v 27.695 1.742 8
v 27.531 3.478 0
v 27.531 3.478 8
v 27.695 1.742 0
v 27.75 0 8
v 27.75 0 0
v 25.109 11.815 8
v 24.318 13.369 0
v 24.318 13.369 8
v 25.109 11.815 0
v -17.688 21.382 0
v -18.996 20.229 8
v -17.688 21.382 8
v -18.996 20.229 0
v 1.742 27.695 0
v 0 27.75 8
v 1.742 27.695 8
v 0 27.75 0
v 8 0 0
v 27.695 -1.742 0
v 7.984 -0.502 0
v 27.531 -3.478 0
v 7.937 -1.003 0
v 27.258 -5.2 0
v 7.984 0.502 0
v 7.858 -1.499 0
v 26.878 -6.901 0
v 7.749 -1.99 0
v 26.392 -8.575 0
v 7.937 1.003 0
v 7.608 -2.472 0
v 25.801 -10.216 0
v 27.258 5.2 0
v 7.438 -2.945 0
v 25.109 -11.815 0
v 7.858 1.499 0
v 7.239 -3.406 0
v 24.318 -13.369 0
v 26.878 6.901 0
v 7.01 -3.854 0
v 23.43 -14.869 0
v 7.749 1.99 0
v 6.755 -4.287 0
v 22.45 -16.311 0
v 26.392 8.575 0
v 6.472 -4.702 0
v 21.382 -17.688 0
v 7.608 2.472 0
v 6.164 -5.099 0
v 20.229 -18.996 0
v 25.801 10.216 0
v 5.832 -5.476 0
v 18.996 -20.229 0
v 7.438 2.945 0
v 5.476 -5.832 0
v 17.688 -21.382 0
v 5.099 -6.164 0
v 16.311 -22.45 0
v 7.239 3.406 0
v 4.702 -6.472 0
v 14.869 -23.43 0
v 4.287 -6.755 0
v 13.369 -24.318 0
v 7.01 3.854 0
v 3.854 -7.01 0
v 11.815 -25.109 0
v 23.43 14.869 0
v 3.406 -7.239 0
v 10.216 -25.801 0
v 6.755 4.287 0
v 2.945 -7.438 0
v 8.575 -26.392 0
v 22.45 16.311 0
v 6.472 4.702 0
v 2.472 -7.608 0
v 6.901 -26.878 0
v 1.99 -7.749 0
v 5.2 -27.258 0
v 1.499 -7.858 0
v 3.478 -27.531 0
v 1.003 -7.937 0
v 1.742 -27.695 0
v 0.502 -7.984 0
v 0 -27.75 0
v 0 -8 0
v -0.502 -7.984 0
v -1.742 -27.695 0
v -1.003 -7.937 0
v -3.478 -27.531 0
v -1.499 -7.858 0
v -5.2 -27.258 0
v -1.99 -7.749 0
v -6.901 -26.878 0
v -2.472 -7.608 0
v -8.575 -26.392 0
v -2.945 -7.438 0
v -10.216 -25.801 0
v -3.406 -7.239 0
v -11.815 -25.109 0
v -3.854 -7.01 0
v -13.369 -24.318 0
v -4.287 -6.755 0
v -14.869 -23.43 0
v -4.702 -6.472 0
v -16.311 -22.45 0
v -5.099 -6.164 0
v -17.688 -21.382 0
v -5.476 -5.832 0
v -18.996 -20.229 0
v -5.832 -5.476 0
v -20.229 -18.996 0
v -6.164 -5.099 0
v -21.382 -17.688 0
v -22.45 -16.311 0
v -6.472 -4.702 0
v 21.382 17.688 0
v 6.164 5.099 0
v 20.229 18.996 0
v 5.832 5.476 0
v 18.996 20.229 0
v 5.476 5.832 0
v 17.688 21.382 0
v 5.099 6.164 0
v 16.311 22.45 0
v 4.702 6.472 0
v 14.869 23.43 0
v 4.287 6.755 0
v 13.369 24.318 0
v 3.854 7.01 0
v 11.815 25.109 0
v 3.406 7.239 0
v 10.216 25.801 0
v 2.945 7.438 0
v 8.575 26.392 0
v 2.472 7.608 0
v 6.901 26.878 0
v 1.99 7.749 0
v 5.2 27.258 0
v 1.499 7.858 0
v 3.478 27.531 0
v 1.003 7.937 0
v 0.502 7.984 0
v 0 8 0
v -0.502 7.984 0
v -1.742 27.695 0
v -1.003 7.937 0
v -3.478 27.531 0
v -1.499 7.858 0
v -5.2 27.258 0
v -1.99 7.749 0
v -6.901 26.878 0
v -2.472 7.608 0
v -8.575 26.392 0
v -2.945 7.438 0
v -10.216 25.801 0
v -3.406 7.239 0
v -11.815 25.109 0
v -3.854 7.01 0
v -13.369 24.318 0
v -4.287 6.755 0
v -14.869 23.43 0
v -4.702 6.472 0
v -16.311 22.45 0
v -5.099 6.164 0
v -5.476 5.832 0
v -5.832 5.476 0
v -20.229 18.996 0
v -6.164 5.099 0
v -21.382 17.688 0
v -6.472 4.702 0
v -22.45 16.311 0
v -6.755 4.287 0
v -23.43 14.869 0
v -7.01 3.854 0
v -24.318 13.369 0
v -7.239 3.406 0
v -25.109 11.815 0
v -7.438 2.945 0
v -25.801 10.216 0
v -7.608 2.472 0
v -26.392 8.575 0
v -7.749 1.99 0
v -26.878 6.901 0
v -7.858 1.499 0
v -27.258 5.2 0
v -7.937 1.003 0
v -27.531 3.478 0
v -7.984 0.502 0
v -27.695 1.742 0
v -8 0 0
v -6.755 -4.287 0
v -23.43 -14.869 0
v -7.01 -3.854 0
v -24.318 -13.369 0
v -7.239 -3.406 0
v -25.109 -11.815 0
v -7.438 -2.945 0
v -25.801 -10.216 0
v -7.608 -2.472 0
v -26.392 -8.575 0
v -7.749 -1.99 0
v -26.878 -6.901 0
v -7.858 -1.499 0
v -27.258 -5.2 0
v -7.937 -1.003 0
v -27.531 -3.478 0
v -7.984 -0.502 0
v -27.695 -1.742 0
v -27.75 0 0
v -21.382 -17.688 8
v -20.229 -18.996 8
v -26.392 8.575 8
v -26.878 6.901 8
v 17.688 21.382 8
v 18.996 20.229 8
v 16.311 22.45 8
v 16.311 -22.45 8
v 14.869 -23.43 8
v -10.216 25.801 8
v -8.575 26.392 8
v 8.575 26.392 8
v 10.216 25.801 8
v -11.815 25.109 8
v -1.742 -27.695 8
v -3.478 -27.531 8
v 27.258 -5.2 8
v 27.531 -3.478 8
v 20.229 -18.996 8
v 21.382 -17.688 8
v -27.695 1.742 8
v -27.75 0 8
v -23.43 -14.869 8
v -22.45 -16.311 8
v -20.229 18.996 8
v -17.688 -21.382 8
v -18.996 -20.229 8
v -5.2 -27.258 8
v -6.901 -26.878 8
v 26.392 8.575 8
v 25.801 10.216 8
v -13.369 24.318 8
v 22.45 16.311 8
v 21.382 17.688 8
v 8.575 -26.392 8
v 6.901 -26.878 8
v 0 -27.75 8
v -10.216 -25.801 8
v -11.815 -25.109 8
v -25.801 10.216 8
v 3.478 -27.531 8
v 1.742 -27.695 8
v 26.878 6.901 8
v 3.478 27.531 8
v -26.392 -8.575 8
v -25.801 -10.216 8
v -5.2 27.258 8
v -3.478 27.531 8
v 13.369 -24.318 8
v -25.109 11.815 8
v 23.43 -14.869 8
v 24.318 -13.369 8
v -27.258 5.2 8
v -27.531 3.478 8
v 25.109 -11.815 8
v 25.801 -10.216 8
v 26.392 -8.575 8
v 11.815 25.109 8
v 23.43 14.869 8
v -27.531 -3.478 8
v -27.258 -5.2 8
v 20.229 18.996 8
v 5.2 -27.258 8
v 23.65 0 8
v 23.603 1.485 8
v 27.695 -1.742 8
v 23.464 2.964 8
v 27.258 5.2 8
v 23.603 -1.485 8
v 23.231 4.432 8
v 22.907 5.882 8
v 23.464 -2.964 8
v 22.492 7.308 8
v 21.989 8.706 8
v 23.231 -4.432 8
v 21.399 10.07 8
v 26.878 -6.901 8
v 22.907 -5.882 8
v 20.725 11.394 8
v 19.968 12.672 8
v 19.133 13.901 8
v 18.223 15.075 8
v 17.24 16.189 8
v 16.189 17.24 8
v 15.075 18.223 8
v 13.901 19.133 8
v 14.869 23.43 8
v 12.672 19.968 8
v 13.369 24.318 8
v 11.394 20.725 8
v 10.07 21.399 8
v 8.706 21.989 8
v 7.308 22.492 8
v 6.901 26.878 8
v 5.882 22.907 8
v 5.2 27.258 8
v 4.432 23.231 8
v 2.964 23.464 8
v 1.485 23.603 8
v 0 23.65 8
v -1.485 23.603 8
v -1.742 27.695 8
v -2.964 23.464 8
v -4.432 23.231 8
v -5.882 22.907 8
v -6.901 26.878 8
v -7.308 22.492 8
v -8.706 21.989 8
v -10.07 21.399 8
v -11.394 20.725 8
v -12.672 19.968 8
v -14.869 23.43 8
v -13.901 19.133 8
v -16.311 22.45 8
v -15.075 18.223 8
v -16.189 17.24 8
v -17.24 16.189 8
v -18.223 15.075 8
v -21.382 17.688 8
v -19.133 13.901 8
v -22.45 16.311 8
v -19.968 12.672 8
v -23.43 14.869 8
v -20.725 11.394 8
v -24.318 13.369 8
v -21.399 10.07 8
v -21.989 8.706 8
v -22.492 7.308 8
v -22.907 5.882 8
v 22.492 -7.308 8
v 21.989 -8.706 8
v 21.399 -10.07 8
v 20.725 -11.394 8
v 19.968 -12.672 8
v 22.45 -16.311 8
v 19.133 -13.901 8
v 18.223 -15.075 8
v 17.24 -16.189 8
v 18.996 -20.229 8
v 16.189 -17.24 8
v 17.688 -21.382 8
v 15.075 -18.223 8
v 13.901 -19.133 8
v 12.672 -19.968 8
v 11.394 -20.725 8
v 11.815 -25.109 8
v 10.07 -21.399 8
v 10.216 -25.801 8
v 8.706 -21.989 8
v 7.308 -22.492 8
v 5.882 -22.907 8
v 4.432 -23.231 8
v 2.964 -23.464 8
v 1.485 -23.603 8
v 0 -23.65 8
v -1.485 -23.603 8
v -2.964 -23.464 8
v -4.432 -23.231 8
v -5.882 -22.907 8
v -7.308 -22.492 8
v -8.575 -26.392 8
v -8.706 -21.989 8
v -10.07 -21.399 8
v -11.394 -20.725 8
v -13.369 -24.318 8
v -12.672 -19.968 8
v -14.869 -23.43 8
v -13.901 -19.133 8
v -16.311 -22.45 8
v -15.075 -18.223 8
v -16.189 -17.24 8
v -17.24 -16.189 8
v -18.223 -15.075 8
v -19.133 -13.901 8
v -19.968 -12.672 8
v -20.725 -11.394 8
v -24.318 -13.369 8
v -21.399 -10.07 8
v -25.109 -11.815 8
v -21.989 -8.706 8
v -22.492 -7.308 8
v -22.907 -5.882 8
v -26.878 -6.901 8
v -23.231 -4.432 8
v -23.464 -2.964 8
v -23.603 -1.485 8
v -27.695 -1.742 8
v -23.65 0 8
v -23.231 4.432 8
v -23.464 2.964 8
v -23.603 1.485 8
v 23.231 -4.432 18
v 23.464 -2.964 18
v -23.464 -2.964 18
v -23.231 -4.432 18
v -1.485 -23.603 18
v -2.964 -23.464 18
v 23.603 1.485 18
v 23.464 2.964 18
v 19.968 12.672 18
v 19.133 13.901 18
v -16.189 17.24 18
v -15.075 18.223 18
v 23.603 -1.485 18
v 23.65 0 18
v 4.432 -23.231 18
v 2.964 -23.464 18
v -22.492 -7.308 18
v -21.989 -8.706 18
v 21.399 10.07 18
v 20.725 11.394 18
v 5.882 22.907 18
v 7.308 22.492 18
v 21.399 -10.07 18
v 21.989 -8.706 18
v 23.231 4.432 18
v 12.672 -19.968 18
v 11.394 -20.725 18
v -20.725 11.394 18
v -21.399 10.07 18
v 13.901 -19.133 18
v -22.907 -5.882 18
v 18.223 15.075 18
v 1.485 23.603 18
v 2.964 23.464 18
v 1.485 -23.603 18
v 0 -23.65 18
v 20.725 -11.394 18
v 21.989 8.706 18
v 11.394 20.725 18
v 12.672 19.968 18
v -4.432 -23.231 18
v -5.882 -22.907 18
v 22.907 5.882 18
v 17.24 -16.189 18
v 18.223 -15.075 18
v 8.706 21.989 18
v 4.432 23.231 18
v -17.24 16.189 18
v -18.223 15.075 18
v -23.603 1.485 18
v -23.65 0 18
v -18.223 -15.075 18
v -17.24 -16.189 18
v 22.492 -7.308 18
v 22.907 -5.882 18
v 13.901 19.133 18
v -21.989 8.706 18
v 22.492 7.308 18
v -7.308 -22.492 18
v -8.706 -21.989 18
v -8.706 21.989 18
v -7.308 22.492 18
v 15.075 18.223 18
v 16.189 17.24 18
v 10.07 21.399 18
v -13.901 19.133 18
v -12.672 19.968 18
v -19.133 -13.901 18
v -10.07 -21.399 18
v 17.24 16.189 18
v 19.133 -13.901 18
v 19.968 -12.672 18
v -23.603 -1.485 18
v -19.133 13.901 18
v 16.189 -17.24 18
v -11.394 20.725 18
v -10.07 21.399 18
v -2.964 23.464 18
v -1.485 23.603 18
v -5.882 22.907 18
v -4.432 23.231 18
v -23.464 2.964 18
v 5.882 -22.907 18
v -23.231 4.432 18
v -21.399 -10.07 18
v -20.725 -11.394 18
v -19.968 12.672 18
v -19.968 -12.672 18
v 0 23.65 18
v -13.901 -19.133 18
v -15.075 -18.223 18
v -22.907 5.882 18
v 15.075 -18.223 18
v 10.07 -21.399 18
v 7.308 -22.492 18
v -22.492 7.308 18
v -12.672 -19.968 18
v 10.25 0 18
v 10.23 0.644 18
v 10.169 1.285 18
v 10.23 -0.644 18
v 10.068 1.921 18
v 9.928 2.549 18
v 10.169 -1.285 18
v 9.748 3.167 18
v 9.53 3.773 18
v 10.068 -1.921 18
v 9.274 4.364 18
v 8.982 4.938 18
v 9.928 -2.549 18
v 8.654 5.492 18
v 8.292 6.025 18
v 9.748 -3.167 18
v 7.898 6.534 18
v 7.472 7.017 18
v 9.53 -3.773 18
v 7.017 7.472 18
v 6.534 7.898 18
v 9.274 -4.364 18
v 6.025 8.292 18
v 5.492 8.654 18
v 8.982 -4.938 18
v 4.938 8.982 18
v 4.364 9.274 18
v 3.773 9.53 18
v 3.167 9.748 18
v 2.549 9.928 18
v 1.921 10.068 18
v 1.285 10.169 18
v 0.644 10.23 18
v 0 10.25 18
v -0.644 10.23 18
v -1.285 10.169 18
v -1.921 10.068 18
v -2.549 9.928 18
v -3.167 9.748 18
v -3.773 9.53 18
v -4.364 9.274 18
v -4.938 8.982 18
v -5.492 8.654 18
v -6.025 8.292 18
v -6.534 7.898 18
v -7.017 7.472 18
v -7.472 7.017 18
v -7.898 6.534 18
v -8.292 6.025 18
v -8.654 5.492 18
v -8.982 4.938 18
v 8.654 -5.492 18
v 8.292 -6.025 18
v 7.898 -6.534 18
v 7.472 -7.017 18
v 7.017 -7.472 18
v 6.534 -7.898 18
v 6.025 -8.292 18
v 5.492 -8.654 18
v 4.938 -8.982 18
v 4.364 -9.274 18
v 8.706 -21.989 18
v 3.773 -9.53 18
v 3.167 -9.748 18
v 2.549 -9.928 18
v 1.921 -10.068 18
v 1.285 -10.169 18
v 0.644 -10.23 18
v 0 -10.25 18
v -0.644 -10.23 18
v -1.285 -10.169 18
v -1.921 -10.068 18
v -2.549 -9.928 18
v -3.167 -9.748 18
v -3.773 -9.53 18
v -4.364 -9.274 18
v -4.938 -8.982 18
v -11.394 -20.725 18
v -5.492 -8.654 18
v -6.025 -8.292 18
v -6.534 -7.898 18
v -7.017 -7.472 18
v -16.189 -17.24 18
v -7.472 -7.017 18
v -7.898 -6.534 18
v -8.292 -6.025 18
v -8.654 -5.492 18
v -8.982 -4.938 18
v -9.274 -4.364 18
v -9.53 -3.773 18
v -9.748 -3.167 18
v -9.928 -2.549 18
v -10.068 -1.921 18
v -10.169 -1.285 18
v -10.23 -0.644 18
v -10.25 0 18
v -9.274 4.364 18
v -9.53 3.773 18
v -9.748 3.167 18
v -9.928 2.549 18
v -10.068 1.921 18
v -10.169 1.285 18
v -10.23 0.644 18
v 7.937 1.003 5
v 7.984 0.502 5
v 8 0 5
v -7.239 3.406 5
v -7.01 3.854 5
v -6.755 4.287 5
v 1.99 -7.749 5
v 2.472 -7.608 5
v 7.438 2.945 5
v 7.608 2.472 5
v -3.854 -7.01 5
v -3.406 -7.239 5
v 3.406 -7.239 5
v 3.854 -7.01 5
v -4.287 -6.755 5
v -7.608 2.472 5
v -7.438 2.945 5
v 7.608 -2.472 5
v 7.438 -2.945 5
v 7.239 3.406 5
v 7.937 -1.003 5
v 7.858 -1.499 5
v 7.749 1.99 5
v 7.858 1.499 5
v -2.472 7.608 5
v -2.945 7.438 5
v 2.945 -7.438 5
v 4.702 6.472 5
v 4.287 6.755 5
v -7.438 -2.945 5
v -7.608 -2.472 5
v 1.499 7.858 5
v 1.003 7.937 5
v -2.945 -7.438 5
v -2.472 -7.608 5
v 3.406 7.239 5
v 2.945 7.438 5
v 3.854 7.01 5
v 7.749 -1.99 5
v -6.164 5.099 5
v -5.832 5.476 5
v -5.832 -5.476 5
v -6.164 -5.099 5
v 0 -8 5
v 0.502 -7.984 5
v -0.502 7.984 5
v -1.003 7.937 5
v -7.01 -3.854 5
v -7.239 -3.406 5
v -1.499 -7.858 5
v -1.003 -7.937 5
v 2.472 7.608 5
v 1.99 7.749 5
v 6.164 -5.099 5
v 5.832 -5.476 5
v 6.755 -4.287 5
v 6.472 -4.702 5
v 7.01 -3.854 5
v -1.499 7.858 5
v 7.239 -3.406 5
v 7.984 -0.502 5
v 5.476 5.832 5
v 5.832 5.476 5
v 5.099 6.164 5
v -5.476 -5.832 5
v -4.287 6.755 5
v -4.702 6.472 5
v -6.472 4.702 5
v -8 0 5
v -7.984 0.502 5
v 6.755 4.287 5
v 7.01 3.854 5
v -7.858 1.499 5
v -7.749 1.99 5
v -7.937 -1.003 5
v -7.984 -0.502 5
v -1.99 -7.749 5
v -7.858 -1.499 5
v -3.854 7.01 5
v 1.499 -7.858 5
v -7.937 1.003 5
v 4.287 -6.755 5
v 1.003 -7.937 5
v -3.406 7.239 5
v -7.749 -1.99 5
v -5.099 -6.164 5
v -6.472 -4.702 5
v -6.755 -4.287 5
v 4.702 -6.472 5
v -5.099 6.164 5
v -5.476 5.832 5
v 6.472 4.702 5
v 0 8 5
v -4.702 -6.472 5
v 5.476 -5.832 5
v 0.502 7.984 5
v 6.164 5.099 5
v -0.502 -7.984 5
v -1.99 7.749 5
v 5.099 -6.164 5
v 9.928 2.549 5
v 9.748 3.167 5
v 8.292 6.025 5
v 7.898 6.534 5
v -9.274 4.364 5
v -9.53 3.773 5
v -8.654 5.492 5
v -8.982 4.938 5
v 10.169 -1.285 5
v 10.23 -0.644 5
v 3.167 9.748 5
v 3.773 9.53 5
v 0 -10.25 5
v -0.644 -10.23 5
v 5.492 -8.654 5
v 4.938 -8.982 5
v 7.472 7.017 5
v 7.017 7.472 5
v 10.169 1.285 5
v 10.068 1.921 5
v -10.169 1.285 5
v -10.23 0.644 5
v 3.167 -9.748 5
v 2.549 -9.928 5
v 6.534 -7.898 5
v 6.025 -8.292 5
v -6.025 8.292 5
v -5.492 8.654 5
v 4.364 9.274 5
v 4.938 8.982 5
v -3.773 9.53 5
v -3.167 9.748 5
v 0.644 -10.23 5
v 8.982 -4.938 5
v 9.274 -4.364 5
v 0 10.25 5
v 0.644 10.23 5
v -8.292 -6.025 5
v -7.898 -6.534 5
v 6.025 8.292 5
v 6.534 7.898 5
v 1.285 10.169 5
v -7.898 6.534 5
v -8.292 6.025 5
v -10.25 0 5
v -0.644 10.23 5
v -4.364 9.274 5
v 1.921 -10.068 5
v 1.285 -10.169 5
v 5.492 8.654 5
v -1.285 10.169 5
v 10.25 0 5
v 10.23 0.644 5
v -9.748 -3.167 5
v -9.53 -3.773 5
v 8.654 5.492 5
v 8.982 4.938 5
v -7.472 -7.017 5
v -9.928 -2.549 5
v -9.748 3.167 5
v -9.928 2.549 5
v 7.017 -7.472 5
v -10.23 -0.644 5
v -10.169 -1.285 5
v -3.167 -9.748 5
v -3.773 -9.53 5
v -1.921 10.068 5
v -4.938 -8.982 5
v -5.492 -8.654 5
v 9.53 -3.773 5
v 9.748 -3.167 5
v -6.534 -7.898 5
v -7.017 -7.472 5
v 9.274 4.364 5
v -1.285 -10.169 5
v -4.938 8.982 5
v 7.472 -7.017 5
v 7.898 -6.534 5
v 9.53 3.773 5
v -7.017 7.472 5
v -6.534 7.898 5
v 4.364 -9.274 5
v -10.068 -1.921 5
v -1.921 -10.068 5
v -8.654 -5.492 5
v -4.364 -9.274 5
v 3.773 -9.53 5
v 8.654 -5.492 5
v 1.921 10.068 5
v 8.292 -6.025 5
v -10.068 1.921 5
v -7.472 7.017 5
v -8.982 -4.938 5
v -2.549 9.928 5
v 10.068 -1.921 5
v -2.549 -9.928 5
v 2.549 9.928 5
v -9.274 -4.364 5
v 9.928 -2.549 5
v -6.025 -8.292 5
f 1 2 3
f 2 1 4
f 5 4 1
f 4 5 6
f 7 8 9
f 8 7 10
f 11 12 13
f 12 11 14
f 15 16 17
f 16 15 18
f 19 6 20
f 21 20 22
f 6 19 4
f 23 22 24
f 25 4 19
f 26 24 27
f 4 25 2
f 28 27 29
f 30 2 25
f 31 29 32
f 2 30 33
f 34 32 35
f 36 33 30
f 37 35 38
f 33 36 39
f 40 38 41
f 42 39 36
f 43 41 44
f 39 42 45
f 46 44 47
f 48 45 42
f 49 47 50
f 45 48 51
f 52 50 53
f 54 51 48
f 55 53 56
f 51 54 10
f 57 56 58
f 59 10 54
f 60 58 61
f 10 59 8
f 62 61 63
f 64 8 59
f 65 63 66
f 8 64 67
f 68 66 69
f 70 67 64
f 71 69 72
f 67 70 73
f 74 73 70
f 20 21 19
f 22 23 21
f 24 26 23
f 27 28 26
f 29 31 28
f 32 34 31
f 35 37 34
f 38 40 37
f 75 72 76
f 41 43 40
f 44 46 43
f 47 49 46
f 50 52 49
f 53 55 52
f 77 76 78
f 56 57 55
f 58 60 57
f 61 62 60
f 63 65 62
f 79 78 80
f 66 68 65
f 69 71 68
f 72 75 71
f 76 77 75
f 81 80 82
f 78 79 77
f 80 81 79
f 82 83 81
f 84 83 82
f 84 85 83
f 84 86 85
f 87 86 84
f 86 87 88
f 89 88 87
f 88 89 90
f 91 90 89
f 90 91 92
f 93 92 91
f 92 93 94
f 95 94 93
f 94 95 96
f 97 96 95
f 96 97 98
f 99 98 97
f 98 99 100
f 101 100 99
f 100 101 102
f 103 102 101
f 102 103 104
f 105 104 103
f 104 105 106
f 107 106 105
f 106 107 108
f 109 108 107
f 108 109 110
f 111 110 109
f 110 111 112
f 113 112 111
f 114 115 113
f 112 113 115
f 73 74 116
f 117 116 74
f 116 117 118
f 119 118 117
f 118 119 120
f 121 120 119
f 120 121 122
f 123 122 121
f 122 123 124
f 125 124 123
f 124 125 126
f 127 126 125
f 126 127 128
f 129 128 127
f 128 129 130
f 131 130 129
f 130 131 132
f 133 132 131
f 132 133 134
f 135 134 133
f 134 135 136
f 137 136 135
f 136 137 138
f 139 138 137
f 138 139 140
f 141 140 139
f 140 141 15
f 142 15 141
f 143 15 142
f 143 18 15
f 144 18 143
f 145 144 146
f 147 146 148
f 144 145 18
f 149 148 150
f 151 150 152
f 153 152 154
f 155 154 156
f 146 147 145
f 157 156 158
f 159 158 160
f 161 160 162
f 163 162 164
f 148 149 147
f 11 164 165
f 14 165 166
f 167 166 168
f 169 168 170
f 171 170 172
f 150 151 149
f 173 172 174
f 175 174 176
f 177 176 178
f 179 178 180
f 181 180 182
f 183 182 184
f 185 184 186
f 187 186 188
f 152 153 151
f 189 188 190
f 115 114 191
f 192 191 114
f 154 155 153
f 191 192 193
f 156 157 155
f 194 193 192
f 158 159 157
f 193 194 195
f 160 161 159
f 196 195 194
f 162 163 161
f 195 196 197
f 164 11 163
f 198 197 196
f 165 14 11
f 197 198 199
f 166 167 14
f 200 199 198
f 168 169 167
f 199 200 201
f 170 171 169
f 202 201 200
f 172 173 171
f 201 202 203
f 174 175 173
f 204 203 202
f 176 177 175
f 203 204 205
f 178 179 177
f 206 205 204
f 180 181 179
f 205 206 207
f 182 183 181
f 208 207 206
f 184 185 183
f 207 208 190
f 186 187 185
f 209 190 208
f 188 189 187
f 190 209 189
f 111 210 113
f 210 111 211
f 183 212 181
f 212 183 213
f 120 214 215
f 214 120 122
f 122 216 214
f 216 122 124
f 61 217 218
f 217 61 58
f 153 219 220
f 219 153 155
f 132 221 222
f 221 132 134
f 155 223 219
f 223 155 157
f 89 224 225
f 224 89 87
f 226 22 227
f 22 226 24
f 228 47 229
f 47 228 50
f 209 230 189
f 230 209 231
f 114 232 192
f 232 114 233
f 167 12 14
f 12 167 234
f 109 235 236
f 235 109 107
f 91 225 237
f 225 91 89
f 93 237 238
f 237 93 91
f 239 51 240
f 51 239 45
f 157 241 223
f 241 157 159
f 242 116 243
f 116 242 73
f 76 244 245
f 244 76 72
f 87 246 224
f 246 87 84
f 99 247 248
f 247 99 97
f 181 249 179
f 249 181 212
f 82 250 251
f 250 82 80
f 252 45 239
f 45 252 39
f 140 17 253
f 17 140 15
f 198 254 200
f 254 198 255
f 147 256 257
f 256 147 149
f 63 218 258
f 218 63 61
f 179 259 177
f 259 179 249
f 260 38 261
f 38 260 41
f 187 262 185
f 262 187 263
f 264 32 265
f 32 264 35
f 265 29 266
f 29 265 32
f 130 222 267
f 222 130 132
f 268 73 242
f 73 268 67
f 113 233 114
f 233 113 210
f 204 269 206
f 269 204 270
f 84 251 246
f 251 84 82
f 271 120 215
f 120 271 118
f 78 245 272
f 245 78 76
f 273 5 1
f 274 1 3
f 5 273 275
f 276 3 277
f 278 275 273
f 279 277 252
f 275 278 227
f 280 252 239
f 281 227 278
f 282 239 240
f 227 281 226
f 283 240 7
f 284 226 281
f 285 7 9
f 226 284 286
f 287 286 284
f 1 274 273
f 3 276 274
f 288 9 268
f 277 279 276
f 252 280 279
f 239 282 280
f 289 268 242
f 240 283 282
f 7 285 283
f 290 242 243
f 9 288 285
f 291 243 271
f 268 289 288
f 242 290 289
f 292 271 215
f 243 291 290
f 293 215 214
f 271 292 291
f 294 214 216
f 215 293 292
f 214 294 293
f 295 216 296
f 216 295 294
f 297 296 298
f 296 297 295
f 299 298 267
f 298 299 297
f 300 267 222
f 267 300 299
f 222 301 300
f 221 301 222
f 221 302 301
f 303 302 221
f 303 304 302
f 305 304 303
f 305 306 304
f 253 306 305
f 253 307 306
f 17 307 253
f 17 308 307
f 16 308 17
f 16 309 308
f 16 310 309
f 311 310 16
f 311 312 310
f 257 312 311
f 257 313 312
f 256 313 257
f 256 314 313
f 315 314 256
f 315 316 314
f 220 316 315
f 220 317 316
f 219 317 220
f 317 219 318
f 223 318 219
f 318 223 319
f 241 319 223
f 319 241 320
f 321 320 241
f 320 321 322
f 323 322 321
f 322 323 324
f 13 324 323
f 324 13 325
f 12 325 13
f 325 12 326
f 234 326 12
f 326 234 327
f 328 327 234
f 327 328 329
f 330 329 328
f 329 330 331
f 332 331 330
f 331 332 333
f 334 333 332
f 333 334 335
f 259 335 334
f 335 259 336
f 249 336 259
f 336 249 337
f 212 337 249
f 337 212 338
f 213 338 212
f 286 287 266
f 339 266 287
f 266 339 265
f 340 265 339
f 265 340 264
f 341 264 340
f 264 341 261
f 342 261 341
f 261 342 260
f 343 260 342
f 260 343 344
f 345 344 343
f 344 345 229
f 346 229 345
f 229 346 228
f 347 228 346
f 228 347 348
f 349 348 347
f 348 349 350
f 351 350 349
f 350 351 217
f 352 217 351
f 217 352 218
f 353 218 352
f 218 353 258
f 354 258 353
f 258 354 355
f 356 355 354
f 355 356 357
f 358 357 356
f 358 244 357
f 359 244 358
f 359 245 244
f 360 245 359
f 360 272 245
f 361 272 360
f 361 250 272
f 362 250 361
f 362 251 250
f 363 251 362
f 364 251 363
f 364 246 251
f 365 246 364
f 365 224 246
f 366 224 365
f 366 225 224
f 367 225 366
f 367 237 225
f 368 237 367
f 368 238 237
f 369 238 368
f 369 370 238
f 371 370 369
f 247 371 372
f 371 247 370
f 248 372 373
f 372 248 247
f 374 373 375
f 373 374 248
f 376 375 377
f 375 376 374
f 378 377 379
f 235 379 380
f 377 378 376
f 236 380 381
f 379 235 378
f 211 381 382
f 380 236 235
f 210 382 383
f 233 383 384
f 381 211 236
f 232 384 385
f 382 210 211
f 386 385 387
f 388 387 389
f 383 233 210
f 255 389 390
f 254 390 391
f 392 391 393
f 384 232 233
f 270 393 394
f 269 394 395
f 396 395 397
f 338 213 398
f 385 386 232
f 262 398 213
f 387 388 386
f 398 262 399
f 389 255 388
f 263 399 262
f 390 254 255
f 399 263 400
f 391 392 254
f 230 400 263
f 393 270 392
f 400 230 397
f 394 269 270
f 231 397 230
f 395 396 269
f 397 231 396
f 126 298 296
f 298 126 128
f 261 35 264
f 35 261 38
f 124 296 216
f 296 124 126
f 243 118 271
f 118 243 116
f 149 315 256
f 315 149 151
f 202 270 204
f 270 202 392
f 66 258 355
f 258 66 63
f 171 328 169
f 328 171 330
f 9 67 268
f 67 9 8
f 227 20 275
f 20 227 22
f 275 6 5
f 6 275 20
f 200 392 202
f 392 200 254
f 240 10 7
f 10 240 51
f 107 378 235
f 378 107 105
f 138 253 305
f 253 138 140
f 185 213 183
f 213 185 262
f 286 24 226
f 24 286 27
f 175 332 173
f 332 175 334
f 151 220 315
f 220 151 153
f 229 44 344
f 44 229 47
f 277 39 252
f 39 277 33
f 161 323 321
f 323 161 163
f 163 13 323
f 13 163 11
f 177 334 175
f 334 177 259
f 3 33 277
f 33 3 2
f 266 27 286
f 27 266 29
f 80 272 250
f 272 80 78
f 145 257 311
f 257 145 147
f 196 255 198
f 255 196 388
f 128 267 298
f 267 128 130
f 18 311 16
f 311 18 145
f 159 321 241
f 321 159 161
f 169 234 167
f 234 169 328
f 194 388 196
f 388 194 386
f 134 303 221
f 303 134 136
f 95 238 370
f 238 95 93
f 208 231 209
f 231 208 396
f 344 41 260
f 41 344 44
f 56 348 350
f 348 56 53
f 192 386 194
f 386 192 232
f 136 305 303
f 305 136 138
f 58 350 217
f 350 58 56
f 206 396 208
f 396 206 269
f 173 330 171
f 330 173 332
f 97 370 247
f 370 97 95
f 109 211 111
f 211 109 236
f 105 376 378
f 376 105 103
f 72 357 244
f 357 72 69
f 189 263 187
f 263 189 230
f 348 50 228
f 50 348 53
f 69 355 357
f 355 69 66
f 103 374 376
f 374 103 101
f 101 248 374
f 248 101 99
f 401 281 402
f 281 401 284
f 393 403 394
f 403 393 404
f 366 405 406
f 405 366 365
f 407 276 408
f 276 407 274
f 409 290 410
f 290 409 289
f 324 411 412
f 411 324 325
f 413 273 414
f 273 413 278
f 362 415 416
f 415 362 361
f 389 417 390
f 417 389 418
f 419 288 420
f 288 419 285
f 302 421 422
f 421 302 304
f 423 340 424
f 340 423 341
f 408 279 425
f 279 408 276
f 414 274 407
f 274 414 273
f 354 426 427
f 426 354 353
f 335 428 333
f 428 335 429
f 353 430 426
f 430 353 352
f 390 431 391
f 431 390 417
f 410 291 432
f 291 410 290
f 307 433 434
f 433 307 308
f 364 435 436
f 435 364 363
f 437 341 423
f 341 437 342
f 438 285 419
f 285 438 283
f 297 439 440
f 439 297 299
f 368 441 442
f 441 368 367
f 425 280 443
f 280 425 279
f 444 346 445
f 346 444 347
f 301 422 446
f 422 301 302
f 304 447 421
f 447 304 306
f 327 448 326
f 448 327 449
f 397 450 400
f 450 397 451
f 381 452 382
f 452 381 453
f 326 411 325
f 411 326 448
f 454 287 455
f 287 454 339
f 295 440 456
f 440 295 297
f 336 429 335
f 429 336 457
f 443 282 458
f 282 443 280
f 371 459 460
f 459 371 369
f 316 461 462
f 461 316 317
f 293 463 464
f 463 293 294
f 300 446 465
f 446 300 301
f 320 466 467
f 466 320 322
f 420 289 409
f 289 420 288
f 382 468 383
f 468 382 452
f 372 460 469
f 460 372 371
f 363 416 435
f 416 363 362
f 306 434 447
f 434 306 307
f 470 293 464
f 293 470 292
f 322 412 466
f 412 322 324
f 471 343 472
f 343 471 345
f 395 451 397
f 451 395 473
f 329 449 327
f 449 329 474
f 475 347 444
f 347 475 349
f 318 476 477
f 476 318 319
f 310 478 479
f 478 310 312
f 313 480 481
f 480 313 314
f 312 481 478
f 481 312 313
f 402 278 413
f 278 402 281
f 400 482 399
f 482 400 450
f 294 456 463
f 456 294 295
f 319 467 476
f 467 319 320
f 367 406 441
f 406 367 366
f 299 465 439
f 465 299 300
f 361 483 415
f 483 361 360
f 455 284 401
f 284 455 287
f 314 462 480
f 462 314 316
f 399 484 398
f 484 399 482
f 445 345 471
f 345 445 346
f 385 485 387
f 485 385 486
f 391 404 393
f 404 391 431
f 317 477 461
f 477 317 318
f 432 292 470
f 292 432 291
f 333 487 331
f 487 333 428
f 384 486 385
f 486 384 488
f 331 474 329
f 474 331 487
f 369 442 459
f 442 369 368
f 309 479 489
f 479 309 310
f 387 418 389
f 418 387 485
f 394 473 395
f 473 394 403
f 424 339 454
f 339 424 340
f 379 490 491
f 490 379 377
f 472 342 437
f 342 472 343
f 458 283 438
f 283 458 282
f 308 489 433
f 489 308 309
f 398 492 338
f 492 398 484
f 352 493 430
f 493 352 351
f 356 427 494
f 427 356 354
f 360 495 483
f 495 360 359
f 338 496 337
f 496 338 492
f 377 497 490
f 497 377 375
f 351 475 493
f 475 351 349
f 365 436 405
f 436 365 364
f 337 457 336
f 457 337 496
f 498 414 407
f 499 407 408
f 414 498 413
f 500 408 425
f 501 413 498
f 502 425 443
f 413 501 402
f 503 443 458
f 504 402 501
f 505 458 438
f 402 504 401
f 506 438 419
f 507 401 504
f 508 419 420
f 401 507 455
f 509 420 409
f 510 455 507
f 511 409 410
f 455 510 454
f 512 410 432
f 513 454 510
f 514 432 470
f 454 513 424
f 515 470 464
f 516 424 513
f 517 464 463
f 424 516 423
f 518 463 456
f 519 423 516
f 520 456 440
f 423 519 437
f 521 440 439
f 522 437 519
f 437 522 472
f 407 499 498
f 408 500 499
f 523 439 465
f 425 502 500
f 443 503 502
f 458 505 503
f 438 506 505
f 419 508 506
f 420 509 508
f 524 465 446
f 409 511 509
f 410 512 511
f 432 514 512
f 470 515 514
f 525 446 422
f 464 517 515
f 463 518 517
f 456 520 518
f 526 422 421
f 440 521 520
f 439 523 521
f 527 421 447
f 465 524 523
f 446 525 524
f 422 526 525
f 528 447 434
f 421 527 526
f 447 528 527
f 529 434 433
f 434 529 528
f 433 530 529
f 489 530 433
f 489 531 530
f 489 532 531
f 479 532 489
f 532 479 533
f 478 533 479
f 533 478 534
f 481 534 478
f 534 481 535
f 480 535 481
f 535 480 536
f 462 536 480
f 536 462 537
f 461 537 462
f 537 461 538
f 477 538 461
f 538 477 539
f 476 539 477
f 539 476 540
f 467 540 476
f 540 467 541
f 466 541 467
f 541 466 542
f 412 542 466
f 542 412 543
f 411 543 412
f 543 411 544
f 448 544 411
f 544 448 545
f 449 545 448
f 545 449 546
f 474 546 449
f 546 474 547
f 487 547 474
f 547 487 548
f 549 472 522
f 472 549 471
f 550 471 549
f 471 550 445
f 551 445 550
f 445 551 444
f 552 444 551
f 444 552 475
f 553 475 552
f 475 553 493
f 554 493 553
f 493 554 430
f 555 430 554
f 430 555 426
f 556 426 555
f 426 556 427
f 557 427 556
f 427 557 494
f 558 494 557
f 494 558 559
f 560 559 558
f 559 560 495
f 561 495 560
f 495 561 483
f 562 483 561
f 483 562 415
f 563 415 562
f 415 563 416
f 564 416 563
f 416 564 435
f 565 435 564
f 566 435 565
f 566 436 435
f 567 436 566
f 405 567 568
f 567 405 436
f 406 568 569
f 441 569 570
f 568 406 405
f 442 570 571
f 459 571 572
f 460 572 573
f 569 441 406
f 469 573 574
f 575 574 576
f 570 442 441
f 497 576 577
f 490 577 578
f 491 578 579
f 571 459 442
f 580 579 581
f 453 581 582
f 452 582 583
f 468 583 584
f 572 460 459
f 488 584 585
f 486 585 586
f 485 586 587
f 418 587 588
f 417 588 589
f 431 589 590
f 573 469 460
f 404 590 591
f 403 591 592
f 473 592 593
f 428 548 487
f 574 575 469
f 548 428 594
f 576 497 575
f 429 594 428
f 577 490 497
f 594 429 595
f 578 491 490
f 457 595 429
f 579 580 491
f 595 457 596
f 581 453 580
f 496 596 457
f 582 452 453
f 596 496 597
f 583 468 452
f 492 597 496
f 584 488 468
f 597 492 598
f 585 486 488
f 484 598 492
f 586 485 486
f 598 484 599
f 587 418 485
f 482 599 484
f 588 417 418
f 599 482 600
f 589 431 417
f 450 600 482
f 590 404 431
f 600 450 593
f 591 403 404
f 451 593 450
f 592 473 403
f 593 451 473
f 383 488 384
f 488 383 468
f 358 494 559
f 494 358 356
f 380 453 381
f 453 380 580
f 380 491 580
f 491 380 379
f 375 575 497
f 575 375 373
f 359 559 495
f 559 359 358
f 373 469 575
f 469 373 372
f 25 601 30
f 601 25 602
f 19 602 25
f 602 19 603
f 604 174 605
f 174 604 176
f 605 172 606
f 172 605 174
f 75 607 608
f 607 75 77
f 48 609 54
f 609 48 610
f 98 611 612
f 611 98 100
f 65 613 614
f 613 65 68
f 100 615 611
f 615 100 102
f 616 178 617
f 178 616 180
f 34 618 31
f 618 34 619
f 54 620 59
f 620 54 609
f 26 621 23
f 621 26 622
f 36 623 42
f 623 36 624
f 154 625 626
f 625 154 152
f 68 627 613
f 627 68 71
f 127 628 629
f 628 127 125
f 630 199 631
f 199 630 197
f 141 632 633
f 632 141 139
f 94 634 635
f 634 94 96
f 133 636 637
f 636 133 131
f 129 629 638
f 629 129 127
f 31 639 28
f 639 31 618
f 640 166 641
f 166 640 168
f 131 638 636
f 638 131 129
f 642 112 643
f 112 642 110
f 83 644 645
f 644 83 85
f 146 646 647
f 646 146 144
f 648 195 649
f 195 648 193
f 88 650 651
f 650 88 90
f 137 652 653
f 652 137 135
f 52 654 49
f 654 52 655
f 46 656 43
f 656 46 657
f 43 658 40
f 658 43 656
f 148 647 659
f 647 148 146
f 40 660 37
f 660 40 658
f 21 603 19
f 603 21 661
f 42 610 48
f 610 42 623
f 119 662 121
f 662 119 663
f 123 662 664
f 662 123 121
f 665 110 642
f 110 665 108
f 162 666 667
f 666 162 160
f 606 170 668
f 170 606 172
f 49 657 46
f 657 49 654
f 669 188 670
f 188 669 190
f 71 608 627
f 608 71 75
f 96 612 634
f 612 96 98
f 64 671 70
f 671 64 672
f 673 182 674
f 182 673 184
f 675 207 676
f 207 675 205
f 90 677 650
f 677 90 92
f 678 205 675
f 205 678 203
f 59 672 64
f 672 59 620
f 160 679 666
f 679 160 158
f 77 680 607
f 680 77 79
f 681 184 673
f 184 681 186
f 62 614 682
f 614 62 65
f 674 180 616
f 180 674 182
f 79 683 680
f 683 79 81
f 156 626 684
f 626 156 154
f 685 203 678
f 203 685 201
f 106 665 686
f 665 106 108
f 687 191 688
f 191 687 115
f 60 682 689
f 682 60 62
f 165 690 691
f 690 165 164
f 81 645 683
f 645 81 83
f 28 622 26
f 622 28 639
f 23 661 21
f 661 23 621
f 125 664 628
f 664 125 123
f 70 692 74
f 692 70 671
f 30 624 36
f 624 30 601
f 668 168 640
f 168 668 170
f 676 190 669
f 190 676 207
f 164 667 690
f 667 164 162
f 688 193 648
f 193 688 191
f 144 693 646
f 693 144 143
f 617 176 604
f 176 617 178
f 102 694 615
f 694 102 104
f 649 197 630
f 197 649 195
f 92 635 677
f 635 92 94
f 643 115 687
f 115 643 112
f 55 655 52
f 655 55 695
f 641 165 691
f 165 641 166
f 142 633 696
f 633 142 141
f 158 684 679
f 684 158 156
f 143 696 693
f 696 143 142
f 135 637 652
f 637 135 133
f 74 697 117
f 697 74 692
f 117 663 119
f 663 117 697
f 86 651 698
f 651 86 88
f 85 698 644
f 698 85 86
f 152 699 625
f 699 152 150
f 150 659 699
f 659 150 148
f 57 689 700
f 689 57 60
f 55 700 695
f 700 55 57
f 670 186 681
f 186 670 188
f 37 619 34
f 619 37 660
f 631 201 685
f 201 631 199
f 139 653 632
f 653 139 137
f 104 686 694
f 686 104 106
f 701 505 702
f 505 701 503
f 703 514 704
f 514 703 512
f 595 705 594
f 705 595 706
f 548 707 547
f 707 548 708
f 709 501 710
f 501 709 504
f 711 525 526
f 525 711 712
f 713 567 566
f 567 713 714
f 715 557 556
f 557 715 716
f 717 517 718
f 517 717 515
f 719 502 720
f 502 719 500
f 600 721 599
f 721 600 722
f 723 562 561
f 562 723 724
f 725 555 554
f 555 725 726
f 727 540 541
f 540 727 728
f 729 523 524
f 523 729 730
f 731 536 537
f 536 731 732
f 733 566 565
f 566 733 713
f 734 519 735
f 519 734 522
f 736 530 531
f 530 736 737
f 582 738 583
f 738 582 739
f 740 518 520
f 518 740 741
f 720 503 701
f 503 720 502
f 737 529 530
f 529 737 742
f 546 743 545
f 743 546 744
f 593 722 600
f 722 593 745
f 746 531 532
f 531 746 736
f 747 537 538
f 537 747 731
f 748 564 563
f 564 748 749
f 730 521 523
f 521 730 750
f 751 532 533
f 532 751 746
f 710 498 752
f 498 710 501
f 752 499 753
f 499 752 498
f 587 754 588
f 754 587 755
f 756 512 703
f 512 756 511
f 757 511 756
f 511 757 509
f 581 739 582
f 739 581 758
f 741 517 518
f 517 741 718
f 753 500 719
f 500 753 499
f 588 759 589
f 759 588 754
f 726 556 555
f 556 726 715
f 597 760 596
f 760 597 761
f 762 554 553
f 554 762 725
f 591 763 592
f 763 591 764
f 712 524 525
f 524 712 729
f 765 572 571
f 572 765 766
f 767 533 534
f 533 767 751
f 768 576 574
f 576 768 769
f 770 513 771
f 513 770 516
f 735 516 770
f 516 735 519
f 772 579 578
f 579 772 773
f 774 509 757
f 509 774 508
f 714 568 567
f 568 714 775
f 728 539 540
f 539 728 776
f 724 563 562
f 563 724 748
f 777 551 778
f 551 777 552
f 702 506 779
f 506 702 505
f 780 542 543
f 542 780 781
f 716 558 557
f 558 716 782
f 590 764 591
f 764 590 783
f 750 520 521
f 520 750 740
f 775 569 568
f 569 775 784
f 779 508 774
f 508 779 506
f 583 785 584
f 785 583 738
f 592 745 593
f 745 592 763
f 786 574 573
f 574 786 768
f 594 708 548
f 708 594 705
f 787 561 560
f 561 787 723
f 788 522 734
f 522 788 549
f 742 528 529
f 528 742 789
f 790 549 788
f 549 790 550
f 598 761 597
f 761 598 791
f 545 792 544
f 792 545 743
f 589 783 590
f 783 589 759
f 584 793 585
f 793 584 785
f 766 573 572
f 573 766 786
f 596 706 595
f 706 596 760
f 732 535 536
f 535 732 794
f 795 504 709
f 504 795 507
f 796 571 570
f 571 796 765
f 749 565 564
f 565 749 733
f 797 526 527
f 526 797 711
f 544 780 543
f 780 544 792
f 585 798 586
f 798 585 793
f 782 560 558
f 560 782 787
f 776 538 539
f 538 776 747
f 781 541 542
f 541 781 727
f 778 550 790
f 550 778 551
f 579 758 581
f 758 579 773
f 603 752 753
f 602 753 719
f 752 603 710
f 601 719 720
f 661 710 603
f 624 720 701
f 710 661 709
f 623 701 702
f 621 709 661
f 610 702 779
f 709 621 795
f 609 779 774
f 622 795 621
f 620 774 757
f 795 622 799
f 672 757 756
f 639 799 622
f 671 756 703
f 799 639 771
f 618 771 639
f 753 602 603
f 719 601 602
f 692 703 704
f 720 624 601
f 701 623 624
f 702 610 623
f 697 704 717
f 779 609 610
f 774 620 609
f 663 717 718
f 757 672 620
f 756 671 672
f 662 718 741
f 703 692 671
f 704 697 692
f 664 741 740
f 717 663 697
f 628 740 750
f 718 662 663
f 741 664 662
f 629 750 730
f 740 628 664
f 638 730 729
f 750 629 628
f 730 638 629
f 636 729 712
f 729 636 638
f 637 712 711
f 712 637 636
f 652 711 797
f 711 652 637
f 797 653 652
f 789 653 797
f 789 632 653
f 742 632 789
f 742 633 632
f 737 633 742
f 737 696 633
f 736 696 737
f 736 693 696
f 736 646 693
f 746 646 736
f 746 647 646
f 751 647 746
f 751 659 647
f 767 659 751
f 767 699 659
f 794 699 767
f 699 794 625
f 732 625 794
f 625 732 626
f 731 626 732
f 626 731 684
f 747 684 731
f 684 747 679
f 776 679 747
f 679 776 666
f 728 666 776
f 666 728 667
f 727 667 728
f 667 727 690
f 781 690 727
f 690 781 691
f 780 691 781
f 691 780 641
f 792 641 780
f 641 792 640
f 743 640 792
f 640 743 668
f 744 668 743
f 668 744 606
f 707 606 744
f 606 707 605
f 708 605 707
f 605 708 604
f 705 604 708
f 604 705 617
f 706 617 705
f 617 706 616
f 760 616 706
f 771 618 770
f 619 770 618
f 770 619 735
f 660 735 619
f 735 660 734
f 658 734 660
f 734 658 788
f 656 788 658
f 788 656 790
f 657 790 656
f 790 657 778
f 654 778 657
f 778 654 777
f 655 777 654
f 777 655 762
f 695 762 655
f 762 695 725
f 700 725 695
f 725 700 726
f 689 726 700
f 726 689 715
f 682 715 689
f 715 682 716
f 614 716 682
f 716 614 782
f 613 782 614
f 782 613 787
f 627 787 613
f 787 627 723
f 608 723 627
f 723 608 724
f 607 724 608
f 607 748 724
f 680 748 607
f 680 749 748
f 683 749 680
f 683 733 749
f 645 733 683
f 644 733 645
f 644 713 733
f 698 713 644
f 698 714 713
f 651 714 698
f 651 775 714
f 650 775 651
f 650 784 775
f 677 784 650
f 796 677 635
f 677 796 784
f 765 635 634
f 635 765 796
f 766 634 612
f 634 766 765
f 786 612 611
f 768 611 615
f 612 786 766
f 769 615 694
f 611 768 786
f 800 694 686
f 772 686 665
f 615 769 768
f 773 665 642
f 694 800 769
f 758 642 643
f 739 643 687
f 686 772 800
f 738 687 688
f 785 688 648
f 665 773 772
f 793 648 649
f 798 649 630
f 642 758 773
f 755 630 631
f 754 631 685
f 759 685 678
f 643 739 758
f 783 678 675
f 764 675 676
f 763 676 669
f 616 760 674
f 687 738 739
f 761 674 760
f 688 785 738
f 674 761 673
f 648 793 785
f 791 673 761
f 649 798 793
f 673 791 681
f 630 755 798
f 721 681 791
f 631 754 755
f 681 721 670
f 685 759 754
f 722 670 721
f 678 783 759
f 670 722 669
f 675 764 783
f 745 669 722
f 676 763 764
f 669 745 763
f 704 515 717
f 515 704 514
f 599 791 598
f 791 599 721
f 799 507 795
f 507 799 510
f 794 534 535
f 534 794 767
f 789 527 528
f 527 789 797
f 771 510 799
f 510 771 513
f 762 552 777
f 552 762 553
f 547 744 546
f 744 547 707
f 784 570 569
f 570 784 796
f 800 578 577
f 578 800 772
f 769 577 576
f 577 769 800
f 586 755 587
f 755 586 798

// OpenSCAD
// Galilean Eyepiece Cell (目镜座)
// 用于固定 20mm 凹透镜

lens_dia = 20.5;
lens_thickness = 3;
tube_od = 51.5; // 匹配滑动管外径
tube_id = 47.5; // 匹配滑动管内径
insert_length = 10;

module eyepiece_cell() {
    difference() {
        union() {
            // 外部手持挡圈
            cylinder(d=tube_od + 4, h=8, $fn=100);
            // 插入调焦管的部分
            translate([0, 0, 8])
            cylinder(d=tube_id - 0.2, h=insert_length, $fn=100);
        }
        
        // 通光孔 (人眼观察孔)
        translate([0, 0, -1])
        cylinder(d=16, h=20 + insert_length + 2, $fn=100);
        
        // 放置目镜的凹槽
        translate([0, 0, 8 - lens_thickness])
        cylinder(d=lens_dia, h=lens_thickness + insert_length + 2, $fn=100);
    }
}

eyepiece_cell();
